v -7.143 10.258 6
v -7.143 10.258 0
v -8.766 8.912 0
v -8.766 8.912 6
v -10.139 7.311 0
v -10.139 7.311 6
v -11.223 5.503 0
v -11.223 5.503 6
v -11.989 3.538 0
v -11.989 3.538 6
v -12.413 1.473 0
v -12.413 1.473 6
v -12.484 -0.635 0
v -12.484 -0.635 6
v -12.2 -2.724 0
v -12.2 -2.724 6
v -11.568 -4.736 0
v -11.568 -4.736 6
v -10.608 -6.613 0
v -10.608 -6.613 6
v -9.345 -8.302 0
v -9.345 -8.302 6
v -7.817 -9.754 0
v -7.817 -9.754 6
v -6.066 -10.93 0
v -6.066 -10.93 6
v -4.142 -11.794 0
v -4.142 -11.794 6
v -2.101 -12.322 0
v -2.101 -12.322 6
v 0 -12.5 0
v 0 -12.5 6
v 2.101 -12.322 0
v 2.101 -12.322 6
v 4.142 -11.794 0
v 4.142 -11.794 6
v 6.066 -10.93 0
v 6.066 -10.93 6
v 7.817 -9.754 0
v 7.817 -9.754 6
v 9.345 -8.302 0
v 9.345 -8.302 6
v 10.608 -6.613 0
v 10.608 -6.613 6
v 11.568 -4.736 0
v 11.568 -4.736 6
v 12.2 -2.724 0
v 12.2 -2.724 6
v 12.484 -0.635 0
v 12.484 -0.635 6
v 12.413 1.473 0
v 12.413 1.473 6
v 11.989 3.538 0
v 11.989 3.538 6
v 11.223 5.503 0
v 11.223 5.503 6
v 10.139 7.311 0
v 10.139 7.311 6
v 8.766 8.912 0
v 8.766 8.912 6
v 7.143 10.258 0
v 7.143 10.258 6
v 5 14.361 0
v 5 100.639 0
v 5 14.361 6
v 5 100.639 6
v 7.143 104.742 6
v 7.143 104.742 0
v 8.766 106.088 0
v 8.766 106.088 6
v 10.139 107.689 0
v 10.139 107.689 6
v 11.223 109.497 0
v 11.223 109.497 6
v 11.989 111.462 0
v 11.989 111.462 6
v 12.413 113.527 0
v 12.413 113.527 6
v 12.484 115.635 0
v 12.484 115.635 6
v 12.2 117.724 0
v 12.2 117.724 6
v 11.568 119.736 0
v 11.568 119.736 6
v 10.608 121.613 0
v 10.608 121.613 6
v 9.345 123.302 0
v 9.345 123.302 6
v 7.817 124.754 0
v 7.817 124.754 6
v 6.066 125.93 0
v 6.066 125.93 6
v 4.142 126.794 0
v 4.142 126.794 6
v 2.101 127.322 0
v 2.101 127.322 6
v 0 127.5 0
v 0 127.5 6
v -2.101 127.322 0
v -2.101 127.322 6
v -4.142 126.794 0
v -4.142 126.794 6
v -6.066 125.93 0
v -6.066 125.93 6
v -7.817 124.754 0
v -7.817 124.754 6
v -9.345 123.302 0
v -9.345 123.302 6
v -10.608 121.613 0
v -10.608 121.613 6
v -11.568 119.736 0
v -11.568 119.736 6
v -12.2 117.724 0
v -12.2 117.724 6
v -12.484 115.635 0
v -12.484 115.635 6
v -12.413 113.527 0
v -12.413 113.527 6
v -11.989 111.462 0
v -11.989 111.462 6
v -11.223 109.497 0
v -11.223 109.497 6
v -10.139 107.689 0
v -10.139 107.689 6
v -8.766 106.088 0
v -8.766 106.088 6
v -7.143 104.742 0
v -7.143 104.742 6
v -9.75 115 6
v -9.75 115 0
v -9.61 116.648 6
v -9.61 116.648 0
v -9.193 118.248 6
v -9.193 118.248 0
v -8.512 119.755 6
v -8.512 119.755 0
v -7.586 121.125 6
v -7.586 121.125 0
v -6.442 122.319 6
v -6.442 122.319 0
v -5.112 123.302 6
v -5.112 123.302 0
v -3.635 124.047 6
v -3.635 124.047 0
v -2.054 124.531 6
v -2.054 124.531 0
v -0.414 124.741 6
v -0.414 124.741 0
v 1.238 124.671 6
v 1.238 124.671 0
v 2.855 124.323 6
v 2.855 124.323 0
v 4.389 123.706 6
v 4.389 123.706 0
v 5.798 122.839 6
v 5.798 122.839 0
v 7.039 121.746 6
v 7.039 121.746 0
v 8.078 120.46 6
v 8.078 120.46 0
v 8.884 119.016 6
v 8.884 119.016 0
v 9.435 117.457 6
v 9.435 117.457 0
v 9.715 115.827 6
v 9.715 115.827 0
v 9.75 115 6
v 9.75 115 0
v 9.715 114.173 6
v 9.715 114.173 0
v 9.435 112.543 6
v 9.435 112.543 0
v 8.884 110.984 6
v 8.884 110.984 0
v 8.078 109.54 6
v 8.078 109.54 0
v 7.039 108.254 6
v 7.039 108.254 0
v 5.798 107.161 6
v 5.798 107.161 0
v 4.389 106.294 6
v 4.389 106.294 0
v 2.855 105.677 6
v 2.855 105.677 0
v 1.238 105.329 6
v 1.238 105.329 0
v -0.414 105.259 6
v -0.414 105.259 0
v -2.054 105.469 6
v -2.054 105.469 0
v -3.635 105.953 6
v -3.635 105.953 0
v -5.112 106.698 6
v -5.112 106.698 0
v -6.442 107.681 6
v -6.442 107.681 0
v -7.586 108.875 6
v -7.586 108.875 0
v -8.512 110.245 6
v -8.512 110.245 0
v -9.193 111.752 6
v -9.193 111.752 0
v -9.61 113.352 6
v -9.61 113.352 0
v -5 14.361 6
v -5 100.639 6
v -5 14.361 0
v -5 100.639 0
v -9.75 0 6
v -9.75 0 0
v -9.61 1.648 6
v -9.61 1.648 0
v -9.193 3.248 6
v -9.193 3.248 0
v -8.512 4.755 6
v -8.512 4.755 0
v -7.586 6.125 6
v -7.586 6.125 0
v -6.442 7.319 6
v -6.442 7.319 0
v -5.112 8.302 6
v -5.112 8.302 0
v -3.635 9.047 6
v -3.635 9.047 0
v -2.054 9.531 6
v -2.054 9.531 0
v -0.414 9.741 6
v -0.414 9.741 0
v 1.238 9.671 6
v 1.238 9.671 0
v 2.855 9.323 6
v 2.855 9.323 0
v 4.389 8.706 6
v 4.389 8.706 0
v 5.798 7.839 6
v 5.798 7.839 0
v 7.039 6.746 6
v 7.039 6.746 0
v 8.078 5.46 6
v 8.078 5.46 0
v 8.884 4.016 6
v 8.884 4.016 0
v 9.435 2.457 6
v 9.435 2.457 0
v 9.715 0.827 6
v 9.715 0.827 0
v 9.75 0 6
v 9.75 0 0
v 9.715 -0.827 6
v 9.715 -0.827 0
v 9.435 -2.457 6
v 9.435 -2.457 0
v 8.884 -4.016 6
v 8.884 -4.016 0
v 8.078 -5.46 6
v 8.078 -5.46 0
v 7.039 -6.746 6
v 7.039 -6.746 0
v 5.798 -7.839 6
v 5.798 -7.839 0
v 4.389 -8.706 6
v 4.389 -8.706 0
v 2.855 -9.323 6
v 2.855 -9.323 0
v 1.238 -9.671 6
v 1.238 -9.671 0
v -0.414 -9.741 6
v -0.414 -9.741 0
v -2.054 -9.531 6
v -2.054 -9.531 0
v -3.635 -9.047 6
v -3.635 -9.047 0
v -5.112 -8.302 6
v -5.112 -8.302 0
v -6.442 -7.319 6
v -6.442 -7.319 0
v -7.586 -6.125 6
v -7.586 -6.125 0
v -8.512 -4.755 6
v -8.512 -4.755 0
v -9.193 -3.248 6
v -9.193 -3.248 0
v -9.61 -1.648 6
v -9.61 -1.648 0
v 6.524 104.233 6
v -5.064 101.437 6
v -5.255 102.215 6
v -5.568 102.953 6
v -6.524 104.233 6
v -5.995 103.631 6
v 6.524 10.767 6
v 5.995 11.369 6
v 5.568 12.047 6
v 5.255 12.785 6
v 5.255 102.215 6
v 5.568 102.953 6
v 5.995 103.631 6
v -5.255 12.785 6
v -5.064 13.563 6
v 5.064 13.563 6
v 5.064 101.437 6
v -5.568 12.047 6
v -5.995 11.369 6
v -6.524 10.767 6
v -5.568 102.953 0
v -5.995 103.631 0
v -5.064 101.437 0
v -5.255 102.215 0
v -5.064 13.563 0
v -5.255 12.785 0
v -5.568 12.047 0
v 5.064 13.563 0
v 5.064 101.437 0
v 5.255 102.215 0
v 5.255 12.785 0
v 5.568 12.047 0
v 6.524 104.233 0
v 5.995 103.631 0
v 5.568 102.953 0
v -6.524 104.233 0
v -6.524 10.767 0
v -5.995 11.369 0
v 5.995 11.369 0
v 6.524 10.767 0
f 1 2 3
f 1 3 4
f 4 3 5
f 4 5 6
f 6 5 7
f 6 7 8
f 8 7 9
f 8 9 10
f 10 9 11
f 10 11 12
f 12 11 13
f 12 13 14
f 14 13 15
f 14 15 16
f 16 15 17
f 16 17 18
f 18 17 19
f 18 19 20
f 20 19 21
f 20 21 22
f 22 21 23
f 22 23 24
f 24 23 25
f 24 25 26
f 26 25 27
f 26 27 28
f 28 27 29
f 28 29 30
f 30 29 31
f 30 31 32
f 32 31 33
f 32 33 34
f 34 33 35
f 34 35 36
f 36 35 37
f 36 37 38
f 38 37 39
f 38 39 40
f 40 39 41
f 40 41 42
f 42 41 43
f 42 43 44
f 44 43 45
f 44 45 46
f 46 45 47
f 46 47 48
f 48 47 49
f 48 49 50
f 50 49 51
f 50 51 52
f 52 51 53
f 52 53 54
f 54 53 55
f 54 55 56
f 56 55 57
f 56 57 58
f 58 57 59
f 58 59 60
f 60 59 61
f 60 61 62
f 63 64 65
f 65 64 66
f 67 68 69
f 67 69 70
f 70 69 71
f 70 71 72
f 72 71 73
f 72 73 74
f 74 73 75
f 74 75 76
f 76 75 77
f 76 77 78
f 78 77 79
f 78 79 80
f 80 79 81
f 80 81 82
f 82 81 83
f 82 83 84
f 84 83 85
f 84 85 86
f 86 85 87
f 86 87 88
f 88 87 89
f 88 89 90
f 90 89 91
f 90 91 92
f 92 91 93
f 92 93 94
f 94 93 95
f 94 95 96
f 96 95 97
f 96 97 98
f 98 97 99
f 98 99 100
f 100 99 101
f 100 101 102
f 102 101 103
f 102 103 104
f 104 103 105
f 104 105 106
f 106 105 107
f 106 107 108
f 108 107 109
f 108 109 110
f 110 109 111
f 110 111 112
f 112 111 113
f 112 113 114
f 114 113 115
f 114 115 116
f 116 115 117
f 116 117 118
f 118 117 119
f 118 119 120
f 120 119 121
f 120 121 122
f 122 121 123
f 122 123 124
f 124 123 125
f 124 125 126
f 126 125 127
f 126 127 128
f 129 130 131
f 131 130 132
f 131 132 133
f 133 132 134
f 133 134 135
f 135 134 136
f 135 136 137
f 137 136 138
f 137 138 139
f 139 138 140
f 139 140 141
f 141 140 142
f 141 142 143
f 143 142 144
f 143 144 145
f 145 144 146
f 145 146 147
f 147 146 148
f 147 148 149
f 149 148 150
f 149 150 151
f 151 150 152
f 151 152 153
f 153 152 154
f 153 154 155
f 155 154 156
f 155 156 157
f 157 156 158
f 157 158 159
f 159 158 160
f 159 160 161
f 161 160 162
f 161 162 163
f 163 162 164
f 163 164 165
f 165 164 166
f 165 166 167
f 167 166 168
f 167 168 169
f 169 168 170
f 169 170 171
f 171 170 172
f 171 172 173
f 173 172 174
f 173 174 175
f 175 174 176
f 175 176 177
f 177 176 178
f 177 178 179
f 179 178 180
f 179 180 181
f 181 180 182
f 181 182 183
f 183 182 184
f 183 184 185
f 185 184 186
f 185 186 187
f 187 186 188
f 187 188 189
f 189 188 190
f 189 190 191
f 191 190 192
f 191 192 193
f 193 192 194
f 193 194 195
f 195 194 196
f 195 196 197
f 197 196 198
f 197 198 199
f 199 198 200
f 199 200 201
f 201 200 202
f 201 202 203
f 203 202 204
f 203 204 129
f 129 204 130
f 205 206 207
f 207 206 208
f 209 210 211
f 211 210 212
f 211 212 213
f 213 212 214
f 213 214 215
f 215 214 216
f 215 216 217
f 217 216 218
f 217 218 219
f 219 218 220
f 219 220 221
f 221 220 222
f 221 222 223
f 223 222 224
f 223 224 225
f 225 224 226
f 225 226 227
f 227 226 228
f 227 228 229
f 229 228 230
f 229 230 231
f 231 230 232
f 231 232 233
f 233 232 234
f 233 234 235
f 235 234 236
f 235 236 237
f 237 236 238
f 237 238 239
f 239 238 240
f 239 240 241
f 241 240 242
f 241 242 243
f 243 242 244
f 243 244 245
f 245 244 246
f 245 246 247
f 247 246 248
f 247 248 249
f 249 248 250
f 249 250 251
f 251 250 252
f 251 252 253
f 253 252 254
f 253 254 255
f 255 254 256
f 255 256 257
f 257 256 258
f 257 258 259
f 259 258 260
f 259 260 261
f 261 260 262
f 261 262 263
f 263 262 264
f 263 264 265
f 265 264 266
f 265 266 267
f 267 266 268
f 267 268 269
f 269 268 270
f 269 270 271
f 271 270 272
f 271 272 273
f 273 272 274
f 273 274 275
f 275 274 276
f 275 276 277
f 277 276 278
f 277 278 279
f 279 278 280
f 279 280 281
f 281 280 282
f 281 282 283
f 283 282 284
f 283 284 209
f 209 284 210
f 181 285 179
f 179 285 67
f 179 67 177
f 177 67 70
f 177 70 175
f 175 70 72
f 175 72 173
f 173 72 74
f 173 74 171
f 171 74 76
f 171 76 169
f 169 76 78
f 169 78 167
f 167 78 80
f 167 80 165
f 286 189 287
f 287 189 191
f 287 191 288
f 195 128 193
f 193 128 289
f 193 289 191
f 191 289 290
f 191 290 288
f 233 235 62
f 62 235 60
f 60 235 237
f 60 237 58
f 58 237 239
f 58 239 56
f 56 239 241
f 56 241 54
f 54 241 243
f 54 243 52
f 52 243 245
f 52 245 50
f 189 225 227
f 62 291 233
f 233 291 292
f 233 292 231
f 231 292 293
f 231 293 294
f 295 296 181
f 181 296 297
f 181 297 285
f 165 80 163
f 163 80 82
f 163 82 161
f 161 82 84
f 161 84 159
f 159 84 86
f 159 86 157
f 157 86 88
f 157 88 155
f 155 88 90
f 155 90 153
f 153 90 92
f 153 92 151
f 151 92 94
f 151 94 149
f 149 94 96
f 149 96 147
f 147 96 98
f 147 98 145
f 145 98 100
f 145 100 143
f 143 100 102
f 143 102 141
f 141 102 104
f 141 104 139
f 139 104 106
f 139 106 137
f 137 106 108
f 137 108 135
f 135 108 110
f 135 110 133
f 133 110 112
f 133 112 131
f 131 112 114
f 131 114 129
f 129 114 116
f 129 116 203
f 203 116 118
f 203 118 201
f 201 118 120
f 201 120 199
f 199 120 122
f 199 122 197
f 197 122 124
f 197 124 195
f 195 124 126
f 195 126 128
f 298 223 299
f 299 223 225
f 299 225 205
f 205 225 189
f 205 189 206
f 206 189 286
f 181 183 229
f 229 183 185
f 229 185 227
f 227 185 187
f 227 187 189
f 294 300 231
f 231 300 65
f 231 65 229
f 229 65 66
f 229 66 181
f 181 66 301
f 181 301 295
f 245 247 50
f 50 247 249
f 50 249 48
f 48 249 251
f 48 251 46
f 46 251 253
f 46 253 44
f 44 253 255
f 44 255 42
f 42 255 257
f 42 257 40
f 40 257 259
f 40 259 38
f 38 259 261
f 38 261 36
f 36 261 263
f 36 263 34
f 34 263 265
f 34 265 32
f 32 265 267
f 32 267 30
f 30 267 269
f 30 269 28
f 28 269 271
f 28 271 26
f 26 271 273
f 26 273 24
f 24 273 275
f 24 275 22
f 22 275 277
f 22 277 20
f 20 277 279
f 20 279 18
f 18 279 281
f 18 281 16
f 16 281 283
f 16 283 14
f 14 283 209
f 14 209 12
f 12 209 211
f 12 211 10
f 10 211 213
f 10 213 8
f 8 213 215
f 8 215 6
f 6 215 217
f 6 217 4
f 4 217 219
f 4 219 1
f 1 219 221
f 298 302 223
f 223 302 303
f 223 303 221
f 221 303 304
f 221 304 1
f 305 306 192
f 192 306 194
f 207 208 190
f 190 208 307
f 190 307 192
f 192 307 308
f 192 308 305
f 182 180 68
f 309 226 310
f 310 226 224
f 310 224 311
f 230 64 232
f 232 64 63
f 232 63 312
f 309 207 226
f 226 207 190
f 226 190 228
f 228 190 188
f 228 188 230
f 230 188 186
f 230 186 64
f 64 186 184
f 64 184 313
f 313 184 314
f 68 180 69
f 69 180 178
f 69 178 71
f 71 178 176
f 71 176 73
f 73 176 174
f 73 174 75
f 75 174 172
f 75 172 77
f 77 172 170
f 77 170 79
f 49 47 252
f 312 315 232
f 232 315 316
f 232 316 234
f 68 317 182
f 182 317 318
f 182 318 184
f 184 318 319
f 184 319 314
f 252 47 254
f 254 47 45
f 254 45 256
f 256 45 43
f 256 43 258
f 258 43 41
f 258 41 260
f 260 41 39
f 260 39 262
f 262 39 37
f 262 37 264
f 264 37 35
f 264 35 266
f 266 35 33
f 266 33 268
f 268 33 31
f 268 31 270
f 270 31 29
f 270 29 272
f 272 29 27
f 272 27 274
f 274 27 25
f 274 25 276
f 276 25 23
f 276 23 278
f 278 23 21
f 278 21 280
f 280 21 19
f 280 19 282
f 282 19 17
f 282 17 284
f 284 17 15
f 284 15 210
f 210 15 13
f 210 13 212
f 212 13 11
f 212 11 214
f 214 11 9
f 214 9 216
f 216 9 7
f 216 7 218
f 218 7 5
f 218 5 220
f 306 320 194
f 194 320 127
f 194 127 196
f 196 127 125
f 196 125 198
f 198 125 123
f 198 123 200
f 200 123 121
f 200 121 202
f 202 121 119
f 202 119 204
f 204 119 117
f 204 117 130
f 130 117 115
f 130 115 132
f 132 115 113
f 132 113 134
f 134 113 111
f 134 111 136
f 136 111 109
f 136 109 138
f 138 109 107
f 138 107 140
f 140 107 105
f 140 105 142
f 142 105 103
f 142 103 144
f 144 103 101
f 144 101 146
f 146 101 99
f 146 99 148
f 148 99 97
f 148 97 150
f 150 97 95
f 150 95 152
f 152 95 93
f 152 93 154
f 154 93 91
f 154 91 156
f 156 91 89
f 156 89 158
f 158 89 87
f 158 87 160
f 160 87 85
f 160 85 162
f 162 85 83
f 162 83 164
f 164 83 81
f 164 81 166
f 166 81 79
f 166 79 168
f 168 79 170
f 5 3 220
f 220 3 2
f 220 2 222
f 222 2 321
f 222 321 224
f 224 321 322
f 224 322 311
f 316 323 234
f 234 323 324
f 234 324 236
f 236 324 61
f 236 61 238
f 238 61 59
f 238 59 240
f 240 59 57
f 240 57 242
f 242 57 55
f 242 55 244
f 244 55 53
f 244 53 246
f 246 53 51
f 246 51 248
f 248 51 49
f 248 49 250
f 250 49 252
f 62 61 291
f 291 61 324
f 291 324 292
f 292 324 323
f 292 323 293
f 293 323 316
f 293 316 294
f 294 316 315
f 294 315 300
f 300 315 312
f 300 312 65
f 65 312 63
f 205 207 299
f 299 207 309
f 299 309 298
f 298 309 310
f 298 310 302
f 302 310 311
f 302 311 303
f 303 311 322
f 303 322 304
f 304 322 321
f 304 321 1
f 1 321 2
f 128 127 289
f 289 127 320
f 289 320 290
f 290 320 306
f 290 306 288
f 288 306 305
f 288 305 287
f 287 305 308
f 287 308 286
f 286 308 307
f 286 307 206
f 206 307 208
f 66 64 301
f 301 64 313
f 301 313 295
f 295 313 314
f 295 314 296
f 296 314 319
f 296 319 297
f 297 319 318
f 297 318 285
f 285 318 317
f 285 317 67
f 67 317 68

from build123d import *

# Parameters (mm, degrees)
SALIENTE_EXTRUIR1_DEPTH = 6
REDONDEO1_R             = 5


with BuildPart() as part:
    # Croquis1 → Saliente-Extruir1 (new body)
    with BuildSketch(Plane.XY):
        with BuildLine():
            ThreePointArc((-5, 103.543560763), (0, 102.5), (5, 103.543560763))
            Line((5, 103.543560763), (5, 106.629665479))
            ThreePointArc((5, 106.629665479), (0, 105.25), (-5, 106.629665479))
            Line((-5, 106.629665479), (-5, 103.543560763))
        make_face()
        with BuildLine():
            Line((5, 106.629665479), (5, 103.543560763))
            ThreePointArc((5, 103.543560763), (10.458250332, 108.153468031), (12.5, 115))
            ThreePointArc((12.5, 115), (-6.846531969, 125.458250332), (-5, 103.543560763))
            Line((-5, 103.543560763), (-5, 106.629665479))
            ThreePointArc((-5, 106.629665479), (-4.812094139, 123.479755303), (9.75, 115))
            ThreePointArc((9.75, 115), (8.479755303, 110.187905861), (5, 106.629665479))
        make_face()
        with BuildLine():
            ThreePointArc((-5, 11.456439237), (0, 12.5), (5, 11.456439237))
            Line((5, 11.456439237), (5, 103.543560763))
            ThreePointArc((5, 103.543560763), (0, 102.5), (-5, 103.543560763))
            Line((-5, 103.543560763), (-5, 11.456439237))
        make_face()
        with BuildLine():
            ThreePointArc((-5, 8.370334521), (0, 9.75), (5, 8.370334521))
            Line((5, 8.370334521), (5, 11.456439237))
            ThreePointArc((5, 11.456439237), (0, 12.5), (-5, 11.456439237))
            Line((-5, 11.456439237), (-5, 8.370334521))
        make_face()
        with BuildLine():
            Line((5, 11.456439237), (5, 8.370334521))
            ThreePointArc((5, 8.370334521), (8.479755303, 4.812094139), (9.75, 0))
            ThreePointArc((9.75, 0), (-4.812094139, -8.479755303), (-5, 8.370334521))
            Line((-5, 8.370334521), (-5, 11.456439237))
            ThreePointArc((-5, 11.456439237), (-6.846531969, -10.458250332), (12.5, 0))
            ThreePointArc((12.5, 0), (10.458250332, 6.846531969), (5, 11.456439237))
        make_face()
    extrude(amount=SALIENTE_EXTRUIR1_DEPTH)

    # Redondeo1
    redondeo1_edges = [part.edges().sort_by_distance(p)[0] for p in [
        (-5, 11.456439237, 3),
        (-5, 103.543560763, 3),
        (5, 103.543560763, 3),
        (5, 11.456439237, 3),
    ]]
    fillet(redondeo1_edges, radius=REDONDEO1_R)


solid = part.part
